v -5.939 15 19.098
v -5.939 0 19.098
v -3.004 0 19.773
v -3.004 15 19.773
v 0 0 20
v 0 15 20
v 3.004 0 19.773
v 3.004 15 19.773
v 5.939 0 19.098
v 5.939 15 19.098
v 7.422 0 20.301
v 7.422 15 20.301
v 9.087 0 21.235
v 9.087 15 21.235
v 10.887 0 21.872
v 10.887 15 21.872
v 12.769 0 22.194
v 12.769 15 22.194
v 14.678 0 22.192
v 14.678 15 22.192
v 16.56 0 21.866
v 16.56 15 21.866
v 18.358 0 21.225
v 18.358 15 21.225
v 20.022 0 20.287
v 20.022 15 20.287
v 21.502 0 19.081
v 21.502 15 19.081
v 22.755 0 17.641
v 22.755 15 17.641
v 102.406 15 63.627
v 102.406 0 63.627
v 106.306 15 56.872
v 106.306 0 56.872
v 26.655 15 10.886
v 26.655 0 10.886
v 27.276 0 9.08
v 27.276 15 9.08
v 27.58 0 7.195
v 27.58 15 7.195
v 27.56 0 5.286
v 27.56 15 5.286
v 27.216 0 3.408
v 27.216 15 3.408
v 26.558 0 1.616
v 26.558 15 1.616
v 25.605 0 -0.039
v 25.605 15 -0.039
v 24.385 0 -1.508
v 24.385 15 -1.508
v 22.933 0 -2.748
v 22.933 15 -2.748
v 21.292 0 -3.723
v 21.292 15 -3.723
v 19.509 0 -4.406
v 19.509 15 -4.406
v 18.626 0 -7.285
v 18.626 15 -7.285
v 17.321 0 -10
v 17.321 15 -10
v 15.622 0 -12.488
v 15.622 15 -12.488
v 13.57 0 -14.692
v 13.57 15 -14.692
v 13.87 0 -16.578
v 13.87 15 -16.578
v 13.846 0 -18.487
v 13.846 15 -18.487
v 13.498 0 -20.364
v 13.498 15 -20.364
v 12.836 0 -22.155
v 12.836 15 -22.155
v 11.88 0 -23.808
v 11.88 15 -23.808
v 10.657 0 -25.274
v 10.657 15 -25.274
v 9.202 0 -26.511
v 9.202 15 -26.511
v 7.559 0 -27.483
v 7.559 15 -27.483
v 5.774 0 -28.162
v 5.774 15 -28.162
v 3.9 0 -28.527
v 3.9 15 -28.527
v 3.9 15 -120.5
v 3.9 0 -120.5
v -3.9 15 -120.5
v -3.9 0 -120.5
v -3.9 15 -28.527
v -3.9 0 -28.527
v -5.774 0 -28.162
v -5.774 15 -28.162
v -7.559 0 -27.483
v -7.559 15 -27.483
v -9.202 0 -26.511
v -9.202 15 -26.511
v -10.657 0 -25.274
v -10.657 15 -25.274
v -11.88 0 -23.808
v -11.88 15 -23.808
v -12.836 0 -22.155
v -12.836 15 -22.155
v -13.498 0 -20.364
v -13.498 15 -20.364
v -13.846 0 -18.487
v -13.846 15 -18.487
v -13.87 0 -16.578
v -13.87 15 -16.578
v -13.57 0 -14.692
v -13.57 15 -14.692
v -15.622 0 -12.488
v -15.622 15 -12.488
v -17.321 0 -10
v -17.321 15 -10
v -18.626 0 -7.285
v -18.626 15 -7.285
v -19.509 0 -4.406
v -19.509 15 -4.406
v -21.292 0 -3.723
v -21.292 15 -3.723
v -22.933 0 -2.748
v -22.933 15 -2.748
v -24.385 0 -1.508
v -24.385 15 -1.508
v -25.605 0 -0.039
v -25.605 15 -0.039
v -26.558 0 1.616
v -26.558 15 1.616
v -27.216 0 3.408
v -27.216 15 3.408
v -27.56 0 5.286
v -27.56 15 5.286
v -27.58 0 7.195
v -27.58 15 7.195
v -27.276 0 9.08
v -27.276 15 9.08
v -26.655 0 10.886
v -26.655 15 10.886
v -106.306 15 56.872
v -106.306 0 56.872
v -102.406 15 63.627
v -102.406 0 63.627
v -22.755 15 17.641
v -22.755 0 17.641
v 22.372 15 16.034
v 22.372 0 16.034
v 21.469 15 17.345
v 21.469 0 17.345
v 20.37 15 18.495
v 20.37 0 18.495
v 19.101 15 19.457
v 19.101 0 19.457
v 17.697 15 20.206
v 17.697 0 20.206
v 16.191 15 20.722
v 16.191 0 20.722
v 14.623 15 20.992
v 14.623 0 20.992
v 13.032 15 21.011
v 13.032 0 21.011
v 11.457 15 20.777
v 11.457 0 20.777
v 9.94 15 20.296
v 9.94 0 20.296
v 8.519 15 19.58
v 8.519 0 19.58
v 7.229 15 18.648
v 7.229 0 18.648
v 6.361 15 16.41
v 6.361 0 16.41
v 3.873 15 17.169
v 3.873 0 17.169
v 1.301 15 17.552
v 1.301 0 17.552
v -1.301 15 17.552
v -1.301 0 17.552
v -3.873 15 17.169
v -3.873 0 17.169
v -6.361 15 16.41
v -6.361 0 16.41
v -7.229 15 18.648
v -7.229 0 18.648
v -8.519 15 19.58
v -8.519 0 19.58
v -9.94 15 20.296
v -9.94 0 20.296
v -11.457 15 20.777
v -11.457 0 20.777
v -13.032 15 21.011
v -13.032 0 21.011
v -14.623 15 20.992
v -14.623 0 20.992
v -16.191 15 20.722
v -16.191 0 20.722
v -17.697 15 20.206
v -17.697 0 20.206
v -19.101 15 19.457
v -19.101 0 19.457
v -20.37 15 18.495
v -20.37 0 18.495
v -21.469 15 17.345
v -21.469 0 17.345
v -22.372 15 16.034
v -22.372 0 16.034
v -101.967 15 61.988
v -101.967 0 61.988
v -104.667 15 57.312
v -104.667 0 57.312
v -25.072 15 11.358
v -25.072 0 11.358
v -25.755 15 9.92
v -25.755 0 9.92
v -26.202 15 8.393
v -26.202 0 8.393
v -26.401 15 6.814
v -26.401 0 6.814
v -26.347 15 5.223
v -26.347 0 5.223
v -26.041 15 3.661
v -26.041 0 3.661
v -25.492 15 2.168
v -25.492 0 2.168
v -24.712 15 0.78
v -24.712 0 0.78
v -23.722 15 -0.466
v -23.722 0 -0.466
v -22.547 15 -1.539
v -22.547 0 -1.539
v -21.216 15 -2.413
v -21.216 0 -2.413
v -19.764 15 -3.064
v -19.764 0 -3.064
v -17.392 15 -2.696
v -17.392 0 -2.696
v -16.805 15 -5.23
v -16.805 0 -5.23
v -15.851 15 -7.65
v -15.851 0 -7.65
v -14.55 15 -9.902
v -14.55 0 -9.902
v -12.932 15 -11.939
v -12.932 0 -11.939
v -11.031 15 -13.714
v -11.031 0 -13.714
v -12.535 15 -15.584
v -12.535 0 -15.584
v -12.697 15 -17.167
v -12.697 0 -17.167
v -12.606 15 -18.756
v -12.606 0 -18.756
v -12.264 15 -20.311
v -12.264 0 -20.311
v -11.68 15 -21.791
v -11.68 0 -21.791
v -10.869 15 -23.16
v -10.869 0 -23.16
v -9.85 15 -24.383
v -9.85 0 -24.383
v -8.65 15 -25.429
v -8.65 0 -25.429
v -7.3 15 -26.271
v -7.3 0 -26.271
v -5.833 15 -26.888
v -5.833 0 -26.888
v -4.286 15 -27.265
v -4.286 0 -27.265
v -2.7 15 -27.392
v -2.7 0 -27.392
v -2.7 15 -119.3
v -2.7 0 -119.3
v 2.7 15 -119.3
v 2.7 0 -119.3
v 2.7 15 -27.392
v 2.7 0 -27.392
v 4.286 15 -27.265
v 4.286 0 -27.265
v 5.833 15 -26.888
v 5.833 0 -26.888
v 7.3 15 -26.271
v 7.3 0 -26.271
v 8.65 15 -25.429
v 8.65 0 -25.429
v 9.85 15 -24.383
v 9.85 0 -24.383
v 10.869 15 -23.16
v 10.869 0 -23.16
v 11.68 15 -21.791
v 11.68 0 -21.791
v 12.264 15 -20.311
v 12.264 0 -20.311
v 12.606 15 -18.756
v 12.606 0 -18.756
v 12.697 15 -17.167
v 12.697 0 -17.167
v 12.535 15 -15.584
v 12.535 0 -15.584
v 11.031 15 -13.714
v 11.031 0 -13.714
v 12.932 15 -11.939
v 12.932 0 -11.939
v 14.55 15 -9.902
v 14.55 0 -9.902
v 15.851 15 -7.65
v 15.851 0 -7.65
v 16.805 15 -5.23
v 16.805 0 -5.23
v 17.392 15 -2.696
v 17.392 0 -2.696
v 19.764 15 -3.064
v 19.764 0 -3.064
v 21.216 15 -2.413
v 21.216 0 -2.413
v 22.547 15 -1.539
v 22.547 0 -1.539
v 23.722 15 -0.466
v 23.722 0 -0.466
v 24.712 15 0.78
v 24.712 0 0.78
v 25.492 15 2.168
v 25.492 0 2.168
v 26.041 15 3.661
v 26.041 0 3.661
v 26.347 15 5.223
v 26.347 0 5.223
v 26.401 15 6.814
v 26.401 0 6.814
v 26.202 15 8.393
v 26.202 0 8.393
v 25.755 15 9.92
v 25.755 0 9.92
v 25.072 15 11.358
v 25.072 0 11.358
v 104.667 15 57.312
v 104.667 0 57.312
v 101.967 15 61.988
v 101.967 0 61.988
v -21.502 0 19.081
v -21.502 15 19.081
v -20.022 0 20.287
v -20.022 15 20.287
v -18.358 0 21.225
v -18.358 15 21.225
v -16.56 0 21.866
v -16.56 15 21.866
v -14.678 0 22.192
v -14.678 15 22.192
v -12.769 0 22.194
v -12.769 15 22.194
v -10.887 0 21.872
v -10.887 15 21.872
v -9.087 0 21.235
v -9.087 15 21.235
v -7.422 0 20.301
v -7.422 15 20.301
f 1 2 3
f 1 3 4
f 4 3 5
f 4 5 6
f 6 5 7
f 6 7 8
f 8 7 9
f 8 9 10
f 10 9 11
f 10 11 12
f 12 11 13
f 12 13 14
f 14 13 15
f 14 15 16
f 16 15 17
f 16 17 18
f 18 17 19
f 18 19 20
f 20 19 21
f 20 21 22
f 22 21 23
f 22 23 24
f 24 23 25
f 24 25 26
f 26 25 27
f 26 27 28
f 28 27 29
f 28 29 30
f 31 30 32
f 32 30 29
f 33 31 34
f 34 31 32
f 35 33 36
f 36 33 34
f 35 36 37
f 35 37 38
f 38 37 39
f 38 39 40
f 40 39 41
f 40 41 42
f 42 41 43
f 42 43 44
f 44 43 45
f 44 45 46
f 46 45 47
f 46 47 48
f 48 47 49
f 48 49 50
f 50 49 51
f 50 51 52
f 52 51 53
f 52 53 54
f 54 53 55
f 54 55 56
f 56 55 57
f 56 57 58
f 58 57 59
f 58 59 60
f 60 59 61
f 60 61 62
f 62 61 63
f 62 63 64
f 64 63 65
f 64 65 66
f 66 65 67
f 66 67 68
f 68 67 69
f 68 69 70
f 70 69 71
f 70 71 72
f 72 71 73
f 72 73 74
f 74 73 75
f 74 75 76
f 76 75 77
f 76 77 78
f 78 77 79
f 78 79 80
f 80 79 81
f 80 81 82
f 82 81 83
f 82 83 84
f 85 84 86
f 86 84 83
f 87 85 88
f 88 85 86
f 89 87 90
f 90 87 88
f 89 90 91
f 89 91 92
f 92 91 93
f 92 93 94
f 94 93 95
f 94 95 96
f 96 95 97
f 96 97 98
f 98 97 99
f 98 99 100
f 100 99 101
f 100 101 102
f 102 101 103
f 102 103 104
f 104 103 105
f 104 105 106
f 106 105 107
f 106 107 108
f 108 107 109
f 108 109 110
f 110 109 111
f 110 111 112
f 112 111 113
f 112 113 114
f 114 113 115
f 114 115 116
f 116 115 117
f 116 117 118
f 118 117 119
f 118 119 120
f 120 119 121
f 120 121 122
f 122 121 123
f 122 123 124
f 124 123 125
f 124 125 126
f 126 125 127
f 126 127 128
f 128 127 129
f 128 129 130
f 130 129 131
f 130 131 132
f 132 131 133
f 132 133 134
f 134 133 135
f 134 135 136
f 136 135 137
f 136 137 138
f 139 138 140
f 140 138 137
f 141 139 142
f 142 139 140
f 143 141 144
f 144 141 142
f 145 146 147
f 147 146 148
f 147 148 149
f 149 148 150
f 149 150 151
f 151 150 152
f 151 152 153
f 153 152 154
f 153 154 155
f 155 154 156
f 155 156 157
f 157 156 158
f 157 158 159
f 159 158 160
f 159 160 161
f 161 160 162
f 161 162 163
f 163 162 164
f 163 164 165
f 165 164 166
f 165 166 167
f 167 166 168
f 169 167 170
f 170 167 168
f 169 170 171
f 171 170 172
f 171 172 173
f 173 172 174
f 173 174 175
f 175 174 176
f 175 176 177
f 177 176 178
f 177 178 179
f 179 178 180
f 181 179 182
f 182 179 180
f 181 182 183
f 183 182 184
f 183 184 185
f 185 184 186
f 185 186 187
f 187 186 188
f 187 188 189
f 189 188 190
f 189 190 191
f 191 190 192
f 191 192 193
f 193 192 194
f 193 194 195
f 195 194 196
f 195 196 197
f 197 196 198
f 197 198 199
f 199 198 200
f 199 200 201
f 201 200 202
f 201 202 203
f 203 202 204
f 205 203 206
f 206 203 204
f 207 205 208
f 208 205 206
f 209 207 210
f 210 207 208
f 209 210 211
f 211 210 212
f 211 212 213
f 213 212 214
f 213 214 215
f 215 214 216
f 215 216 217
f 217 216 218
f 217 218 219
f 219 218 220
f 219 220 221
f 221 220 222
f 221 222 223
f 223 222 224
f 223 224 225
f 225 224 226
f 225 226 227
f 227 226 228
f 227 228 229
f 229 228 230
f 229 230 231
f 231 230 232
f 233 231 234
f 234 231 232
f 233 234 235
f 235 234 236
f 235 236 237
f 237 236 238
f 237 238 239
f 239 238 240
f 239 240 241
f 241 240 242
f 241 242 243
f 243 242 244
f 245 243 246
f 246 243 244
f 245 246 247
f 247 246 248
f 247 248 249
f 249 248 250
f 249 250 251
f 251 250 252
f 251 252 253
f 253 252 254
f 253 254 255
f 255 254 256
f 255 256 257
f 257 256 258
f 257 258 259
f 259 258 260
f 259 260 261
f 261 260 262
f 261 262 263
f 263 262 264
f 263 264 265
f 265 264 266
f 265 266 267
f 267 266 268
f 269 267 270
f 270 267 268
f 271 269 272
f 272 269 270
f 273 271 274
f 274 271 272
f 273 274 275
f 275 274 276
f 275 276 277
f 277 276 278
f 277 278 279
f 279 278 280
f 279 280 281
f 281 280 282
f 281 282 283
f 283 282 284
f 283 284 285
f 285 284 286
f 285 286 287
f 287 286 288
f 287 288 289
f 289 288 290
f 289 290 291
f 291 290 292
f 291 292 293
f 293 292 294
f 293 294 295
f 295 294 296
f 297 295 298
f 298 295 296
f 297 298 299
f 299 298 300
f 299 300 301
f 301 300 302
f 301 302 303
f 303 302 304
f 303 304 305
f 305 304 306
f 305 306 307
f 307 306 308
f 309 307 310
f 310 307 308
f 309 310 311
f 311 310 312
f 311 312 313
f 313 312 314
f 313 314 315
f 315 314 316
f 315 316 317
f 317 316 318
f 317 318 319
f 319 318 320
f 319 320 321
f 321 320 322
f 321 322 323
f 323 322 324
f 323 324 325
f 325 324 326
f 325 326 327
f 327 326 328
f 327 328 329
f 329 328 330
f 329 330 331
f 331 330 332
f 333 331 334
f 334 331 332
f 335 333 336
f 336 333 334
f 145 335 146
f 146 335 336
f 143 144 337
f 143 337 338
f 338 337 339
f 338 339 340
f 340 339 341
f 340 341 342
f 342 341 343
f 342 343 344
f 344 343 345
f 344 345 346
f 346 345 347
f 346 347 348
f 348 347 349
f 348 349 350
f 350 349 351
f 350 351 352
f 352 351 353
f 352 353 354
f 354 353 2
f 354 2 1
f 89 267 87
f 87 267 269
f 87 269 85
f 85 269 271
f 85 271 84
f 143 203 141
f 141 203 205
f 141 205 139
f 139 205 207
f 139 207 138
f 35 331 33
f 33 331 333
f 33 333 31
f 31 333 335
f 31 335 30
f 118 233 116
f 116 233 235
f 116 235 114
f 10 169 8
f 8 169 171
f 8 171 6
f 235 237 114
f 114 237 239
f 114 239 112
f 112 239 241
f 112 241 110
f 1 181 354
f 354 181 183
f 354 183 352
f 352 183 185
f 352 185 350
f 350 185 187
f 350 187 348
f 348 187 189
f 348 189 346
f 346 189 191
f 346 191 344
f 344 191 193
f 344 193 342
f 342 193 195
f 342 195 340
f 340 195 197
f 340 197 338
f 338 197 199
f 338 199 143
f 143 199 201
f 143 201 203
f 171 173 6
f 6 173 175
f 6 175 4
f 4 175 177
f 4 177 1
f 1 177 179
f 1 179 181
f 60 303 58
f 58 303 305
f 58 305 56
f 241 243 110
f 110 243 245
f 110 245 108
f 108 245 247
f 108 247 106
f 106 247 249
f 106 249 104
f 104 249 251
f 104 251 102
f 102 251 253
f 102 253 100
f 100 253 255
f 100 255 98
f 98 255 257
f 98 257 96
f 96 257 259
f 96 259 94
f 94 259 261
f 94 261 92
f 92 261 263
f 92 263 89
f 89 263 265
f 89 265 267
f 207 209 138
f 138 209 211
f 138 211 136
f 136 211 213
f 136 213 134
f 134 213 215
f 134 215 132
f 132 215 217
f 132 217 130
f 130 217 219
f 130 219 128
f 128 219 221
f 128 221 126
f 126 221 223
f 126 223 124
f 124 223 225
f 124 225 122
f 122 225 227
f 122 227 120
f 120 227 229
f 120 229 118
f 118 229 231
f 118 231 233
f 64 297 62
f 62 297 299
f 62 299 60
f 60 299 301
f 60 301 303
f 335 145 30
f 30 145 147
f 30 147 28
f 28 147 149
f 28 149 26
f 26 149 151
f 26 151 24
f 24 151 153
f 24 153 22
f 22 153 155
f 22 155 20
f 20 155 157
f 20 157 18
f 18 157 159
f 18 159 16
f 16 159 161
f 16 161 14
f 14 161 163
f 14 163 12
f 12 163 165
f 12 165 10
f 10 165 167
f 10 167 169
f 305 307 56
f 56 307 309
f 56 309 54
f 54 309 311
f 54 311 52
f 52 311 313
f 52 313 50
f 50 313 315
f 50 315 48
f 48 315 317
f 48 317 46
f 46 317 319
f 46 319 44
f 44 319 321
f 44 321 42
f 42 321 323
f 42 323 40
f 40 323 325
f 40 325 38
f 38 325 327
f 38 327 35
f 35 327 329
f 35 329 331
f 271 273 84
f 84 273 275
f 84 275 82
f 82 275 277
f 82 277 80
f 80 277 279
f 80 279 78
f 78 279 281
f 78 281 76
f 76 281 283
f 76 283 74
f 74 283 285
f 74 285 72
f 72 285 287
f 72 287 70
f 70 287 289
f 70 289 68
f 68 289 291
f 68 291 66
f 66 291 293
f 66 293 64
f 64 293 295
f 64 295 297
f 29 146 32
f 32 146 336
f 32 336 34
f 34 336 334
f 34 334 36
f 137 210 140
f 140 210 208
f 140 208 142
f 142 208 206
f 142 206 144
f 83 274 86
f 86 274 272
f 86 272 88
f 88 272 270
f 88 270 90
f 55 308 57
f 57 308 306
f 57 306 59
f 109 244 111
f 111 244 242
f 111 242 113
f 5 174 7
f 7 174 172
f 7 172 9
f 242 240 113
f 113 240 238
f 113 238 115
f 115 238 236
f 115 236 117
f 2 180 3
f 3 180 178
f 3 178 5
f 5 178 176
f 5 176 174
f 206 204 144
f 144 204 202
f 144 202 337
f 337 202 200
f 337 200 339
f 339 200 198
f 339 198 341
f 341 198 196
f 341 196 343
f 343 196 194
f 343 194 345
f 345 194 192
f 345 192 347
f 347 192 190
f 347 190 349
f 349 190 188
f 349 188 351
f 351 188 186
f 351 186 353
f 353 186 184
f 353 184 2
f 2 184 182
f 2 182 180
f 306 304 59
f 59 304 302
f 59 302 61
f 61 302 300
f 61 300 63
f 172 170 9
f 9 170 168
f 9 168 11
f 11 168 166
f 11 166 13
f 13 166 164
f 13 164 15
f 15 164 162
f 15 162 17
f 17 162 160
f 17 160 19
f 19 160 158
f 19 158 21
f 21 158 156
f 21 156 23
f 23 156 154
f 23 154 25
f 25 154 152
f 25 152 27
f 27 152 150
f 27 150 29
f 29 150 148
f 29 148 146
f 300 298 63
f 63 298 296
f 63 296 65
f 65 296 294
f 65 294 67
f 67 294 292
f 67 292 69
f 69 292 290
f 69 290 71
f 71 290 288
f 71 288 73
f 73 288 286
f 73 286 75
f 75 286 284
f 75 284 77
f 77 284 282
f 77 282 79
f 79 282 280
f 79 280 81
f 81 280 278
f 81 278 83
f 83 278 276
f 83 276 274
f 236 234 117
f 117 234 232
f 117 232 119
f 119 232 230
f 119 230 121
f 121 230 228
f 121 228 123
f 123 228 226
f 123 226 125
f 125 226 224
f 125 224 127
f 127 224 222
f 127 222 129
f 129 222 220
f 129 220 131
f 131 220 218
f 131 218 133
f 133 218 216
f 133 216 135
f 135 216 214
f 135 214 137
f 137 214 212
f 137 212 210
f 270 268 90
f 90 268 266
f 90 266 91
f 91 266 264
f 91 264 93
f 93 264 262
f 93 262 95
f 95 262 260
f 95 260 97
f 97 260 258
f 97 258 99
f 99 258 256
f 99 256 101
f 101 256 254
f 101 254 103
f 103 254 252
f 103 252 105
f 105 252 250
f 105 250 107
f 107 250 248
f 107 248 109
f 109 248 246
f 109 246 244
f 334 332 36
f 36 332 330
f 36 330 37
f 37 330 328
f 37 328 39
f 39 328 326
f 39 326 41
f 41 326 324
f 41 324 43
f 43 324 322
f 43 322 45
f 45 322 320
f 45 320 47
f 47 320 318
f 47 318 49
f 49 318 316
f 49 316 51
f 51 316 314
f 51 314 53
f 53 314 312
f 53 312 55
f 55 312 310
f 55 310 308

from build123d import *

# Parameters (mm, degrees)
BOSS_EXTRUDE1_DEPTH = 15


with BuildPart() as part:
    # Sketch1 → Boss-Extrude1 (new body)
    with BuildSketch(Plane(origin=(0, 0, 0), x_dir=(1, 0, 0), z_dir=(0, 1, 0))):
        with BuildLine():
            ThreePointArc((12.518734156, 15.597477204), (13.041444472, 15.163137079), (13.549095916, 14.711288178))
            ThreePointArc((13.549095916, 14.711288178), (11.904160472, 23.874346891), (3.9, 28.62838441))
            Line((3.9, 28.62838441), (3.9, 120.5))
            Line((3.9, 120.5), (0, 120.5))
            Line((0, 120.5), (-3.9, 120.5))
            Line((-3.9, 120.5), (-3.9, 28.62838441))
            ThreePointArc((-3.9, 28.62838441), (-11.904160472, 23.874346891), (-13.549095916, 14.711288178))
            ThreePointArc((-13.549095916, 14.711288178), (-13.041444472, 15.163137079), (-12.518734156, 15.597477204))
            ThreePointArc((-12.518734156, 15.597477204), (-10.412126322, 23.858631961), (-2.7, 27.492855685))
            Line((-2.7, 27.492855685), (-2.7, 119.3))
            Line((-2.7, 119.3), (2.7, 119.3))
            Line((2.7, 119.3), (2.7, 27.492855685))
            ThreePointArc((2.7, 27.492855685), (10.412126322, 23.858631961), (12.518734156, 15.597477204))
        make_face()
        with BuildLine():
            ThreePointArc((-17.493953036, 2.692880832), (-15.328649647, 8.85), (-11.079079728, 13.803767326))
            Line((-11.079079728, 13.803767326), (-12.518734156, 15.597477204))
            ThreePointArc((-12.518734156, 15.597477204), (-13.041444472, 15.163137079), (-13.549095916, 14.711288178))
            ThreePointArc((-13.549095916, 14.711288178), (-17.320508076, 10), (-19.514897242, 4.378217173))
            ThreePointArc((-19.514897242, 4.378217173), (-19.652384148, 3.712653675), (-19.767178572, 3.0428032))
            Line((-19.767178572, 3.0428032), (-17.493953036, 2.692880832))
        make_face()
        with BuildLine():
            ThreePointArc((-22.842908169, -17.69169128), (-14.72371067, -22.246478824), (-5.965801326, -19.089505351))
            ThreePointArc((-5.965801326, -19.089505351), (-6.610939676, -18.875790754), (-7.248444416, -18.640280404))
            ThreePointArc((-7.248444416, -18.640280404), (-15.456118217, -20.946481882), (-22.459511445, -16.084696432))
            Line((-22.459511445, -16.084696432), (-101.966830671, -61.98826859))
            Line((-101.966830671, -61.98826859), (-104.666830671, -57.31173141))
            Line((-104.666830671, -57.31173141), (-25.159511445, -11.408159252))
            ThreePointArc((-25.159511445, -11.408159252), (-25.868244538, -2.912150078), (-19.767178572, 3.0428032))
            ThreePointArc((-19.767178572, 3.0428032), (-19.652384148, 3.712653675), (-19.514897242, 4.378217173))
            ThreePointArc((-19.514897242, 4.378217173), (-26.627871142, -1.627868066), (-26.742908169, -10.93669313))
            Line((-26.742908169, -10.93669313), (-106.306061156, -56.872500925))
            Line((-106.306061156, -56.872500925), (-104.356061156, -60.25))
            Line((-104.356061156, -60.25), (-102.406061156, -63.627499075))
            Line((-102.406061156, -63.627499075), (-22.842908169, -17.69169128))
        make_face()
        with BuildLine():
            Line((17.493953036, 2.692880832), (19.767178572, 3.0428032))
            ThreePointArc((19.767178572, 3.0428032), (19.652384148, 3.712653675), (19.514897242, 4.378217173))
            ThreePointArc((19.514897242, 4.378217173), (17.320508076, 10), (13.549095916, 14.711288178))
            ThreePointArc((13.549095916, 14.711288178), (13.041444472, 15.163137079), (12.518734156, 15.597477204))
            Line((12.518734156, 15.597477204), (11.079079728, 13.803767326))
            ThreePointArc((11.079079728, 13.803767326), (15.328649647, 8.85), (17.493953036, 2.692880832))
        make_face()
        with BuildLine():
            ThreePointArc((5.965801326, -19.089505351), (6.610939676, -18.875790754), (7.248444416, -18.640280404))
            Line((7.248444416, -18.640280404), (6.414873308, -16.496648158))
            ThreePointArc((6.414873308, -16.496648158), (0, -17.7), (-6.414873308, -16.496648158))
            Line((-6.414873308, -16.496648158), (-7.248444416, -18.640280404))
            ThreePointArc((-7.248444416, -18.640280404), (-6.610939676, -18.875790754), (-5.965801326, -19.089505351))
            ThreePointArc((-5.965801326, -19.089505351), (0, -20), (5.965801326, -19.089505351))
        make_face()
        with BuildLine():
            ThreePointArc((19.767178572, 3.0428032), (25.868244538, -2.912150078), (25.159511445, -11.408159252))
            Line((25.159511445, -11.408159252), (104.666830671, -57.31173141))
            Line((104.666830671, -57.31173141), (101.966830671, -61.98826859))
            Line((101.966830671, -61.98826859), (22.459511445, -16.084696432))
            ThreePointArc((22.459511445, -16.084696432), (15.456118217, -20.946481882), (7.248444416, -18.640280404))
            ThreePointArc((7.248444416, -18.640280404), (6.610939676, -18.875790754), (5.965801326, -19.089505351))
            ThreePointArc((5.965801326, -19.089505351), (14.72371067, -22.246478824), (22.842908169, -17.69169128))
            Line((22.842908169, -17.69169128), (102.406061156, -63.627499075))
            Line((102.406061156, -63.627499075), (104.356061156, -60.25))
            Line((104.356061156, -60.25), (106.306061156, -56.872500925))
            Line((106.306061156, -56.872500925), (26.742908169, -10.93669313))
            ThreePointArc((26.742908169, -10.93669313), (26.627871142, -1.627868066), (19.514897242, 4.378217173))
            ThreePointArc((19.514897242, 4.378217173), (19.652384148, 3.712653675), (19.767178572, 3.0428032))
        make_face()
    extrude(amount=BOSS_EXTRUDE1_DEPTH)


solid = part.part
